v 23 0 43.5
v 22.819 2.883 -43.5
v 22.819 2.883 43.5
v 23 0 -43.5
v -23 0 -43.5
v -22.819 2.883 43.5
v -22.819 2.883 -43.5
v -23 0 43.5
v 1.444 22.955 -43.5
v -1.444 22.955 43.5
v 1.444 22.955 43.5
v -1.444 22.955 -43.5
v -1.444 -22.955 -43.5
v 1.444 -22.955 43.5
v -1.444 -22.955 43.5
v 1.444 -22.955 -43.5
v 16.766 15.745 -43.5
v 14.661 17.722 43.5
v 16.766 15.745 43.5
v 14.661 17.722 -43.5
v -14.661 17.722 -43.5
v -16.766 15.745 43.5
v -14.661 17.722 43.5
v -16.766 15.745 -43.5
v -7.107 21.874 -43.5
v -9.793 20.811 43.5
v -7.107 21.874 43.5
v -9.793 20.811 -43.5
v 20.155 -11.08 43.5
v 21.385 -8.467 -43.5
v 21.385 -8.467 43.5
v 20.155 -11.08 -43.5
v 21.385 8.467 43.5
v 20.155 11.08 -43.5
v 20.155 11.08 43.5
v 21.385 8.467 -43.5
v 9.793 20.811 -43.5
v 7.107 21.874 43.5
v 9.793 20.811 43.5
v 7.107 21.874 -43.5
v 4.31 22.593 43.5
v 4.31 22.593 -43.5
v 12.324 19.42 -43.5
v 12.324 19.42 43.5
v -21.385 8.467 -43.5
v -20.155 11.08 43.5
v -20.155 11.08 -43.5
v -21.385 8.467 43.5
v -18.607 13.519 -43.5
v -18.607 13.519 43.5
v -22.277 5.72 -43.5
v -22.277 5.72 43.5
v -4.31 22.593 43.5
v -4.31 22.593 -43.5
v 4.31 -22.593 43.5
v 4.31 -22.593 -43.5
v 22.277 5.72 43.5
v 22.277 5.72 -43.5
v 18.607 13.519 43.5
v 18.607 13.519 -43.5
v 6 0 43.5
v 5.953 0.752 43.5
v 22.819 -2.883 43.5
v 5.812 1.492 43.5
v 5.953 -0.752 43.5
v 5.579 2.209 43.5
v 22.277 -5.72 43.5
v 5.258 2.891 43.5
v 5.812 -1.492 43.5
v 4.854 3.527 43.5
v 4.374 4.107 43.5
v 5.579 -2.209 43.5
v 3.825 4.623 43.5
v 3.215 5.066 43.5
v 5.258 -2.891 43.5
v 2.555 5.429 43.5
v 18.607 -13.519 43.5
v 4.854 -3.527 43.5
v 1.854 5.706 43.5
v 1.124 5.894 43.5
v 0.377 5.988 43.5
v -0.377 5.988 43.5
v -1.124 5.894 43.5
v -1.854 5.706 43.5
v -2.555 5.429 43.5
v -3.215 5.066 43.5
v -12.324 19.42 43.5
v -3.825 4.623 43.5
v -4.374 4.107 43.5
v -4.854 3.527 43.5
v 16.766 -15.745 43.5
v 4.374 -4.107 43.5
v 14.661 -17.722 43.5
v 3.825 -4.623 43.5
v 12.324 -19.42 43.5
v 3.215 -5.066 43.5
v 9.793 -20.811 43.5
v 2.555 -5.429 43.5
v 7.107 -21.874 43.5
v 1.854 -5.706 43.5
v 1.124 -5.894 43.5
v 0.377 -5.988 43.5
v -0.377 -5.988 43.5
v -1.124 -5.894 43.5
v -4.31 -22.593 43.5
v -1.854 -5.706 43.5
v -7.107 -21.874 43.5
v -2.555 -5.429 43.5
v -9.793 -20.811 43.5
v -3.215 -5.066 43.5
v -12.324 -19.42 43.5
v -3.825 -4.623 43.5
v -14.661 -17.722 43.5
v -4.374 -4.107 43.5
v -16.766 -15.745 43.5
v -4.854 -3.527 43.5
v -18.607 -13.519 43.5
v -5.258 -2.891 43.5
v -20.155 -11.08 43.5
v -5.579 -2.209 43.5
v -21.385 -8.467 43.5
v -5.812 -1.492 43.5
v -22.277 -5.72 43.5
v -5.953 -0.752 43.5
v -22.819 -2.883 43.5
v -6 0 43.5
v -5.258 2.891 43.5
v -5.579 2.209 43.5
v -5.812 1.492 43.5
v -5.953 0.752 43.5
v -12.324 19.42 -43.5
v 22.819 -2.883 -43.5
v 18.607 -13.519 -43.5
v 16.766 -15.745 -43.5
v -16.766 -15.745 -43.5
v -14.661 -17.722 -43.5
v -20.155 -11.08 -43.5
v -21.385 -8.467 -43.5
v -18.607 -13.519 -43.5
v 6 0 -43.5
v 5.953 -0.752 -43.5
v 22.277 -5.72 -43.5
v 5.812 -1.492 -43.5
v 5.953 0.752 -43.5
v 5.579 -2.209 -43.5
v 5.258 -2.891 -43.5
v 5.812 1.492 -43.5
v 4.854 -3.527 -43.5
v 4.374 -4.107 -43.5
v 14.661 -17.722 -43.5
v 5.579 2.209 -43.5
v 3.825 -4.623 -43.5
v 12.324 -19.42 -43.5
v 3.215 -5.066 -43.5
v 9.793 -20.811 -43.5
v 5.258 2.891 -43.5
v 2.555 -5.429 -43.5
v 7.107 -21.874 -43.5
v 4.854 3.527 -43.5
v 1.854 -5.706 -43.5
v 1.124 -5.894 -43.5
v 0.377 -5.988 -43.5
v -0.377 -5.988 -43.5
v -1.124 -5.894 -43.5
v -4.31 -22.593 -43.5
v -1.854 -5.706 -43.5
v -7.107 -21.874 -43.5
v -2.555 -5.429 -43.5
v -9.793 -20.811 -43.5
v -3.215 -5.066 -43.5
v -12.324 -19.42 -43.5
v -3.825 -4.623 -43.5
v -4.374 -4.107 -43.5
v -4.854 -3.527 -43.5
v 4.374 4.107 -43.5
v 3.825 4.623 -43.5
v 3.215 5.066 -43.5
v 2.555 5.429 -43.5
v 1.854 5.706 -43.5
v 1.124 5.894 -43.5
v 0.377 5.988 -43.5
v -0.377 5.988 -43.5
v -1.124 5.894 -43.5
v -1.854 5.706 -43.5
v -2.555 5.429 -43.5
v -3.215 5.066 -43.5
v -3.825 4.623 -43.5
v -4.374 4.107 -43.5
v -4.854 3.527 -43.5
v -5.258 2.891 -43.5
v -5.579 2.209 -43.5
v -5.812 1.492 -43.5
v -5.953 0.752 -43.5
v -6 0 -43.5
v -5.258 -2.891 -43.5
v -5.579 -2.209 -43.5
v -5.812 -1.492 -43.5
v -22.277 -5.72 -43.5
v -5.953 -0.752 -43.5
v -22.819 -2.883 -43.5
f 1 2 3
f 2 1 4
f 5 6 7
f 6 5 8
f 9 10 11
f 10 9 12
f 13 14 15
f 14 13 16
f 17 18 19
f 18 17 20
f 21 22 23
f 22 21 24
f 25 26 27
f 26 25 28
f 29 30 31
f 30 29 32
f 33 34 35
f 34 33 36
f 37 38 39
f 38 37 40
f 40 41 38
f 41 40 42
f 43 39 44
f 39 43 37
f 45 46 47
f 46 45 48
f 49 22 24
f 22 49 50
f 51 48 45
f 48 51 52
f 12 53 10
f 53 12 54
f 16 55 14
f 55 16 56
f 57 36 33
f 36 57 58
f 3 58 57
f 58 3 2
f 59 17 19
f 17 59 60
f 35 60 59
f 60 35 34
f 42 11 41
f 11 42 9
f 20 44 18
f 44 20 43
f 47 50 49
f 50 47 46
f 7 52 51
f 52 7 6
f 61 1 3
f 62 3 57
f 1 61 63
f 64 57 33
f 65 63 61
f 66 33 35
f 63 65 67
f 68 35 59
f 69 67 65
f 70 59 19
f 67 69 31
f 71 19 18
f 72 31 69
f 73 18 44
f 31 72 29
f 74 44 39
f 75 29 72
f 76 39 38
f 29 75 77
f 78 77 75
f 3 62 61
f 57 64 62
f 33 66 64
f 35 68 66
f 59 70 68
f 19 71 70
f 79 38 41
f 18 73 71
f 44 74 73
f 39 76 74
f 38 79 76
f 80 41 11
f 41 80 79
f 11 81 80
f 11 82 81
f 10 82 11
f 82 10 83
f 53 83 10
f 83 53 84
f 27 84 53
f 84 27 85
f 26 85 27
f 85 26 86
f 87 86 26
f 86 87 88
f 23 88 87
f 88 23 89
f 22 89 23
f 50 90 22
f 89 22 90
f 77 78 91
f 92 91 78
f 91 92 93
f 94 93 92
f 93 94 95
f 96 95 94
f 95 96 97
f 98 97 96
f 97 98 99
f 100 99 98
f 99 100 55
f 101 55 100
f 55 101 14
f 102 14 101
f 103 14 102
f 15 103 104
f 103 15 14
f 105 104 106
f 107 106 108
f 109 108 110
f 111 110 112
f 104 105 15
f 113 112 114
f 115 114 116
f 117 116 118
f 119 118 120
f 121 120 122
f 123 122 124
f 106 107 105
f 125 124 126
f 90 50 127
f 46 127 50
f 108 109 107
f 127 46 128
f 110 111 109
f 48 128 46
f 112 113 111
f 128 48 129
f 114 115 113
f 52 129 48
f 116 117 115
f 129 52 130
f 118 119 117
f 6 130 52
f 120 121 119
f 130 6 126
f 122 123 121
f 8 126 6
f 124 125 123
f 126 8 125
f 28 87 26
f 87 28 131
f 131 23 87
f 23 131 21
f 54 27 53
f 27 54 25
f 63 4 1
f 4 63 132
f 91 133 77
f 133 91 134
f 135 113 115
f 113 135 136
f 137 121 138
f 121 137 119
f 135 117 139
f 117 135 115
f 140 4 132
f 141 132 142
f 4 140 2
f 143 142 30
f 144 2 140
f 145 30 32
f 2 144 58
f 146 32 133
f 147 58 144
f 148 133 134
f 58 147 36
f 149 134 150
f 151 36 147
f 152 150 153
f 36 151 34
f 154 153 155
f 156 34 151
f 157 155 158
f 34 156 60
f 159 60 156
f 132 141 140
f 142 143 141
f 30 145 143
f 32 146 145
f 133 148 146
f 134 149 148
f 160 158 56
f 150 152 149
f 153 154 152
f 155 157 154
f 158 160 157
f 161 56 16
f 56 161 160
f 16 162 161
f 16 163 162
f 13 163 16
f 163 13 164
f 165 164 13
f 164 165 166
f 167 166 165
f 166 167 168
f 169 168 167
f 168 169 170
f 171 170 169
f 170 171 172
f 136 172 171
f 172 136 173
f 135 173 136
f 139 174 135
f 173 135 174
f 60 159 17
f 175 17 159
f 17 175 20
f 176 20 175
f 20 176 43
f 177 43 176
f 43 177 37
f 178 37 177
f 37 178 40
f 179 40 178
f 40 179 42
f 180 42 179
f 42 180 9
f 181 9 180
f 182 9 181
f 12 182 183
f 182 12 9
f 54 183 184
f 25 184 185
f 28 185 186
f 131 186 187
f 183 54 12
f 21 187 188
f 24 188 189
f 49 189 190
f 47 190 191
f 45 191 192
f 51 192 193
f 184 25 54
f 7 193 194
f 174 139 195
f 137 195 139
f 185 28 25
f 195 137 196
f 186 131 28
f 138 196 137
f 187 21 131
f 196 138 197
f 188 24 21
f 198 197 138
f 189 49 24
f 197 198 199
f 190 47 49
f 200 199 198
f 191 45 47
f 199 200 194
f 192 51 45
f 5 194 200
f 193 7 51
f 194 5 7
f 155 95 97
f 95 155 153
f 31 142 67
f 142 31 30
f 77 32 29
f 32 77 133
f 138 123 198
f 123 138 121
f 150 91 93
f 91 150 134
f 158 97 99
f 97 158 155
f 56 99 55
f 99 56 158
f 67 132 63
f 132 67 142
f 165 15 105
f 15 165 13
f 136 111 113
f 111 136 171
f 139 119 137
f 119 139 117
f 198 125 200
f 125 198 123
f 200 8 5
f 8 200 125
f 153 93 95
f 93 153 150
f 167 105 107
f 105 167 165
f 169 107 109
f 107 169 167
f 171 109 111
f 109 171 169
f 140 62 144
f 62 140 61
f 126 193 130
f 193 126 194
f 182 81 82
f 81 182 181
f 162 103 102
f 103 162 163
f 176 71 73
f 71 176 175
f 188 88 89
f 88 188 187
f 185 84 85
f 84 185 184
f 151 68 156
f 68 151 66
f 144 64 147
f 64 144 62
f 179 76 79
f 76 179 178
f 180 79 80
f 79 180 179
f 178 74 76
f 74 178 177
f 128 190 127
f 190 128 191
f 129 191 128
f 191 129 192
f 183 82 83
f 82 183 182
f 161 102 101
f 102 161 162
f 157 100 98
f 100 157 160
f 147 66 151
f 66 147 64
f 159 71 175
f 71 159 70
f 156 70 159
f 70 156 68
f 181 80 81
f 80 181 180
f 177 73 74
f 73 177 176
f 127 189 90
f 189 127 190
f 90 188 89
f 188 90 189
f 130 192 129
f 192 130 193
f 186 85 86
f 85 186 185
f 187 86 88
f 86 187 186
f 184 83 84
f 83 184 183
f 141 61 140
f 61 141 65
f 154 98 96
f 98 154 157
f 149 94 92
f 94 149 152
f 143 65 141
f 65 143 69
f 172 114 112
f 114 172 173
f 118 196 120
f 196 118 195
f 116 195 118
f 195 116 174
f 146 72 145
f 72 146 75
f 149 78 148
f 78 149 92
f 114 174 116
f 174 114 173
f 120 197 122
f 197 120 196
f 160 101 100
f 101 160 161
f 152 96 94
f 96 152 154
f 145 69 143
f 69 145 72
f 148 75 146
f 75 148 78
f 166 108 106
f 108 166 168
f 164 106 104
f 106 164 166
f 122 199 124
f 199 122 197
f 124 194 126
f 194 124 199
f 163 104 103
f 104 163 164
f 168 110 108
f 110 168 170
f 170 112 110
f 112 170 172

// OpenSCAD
$fn = 50;


difference() {
	union() {
		translate(v = [0, 0, -43.5000000000]) {
			cylinder(h = 87, r = 23.0000000000);
		}
	}
	union() {
		translate(v = [0, 0, -100.0000000000]) {
			cylinder(h = 200, r = 6);
		}
	}
}
